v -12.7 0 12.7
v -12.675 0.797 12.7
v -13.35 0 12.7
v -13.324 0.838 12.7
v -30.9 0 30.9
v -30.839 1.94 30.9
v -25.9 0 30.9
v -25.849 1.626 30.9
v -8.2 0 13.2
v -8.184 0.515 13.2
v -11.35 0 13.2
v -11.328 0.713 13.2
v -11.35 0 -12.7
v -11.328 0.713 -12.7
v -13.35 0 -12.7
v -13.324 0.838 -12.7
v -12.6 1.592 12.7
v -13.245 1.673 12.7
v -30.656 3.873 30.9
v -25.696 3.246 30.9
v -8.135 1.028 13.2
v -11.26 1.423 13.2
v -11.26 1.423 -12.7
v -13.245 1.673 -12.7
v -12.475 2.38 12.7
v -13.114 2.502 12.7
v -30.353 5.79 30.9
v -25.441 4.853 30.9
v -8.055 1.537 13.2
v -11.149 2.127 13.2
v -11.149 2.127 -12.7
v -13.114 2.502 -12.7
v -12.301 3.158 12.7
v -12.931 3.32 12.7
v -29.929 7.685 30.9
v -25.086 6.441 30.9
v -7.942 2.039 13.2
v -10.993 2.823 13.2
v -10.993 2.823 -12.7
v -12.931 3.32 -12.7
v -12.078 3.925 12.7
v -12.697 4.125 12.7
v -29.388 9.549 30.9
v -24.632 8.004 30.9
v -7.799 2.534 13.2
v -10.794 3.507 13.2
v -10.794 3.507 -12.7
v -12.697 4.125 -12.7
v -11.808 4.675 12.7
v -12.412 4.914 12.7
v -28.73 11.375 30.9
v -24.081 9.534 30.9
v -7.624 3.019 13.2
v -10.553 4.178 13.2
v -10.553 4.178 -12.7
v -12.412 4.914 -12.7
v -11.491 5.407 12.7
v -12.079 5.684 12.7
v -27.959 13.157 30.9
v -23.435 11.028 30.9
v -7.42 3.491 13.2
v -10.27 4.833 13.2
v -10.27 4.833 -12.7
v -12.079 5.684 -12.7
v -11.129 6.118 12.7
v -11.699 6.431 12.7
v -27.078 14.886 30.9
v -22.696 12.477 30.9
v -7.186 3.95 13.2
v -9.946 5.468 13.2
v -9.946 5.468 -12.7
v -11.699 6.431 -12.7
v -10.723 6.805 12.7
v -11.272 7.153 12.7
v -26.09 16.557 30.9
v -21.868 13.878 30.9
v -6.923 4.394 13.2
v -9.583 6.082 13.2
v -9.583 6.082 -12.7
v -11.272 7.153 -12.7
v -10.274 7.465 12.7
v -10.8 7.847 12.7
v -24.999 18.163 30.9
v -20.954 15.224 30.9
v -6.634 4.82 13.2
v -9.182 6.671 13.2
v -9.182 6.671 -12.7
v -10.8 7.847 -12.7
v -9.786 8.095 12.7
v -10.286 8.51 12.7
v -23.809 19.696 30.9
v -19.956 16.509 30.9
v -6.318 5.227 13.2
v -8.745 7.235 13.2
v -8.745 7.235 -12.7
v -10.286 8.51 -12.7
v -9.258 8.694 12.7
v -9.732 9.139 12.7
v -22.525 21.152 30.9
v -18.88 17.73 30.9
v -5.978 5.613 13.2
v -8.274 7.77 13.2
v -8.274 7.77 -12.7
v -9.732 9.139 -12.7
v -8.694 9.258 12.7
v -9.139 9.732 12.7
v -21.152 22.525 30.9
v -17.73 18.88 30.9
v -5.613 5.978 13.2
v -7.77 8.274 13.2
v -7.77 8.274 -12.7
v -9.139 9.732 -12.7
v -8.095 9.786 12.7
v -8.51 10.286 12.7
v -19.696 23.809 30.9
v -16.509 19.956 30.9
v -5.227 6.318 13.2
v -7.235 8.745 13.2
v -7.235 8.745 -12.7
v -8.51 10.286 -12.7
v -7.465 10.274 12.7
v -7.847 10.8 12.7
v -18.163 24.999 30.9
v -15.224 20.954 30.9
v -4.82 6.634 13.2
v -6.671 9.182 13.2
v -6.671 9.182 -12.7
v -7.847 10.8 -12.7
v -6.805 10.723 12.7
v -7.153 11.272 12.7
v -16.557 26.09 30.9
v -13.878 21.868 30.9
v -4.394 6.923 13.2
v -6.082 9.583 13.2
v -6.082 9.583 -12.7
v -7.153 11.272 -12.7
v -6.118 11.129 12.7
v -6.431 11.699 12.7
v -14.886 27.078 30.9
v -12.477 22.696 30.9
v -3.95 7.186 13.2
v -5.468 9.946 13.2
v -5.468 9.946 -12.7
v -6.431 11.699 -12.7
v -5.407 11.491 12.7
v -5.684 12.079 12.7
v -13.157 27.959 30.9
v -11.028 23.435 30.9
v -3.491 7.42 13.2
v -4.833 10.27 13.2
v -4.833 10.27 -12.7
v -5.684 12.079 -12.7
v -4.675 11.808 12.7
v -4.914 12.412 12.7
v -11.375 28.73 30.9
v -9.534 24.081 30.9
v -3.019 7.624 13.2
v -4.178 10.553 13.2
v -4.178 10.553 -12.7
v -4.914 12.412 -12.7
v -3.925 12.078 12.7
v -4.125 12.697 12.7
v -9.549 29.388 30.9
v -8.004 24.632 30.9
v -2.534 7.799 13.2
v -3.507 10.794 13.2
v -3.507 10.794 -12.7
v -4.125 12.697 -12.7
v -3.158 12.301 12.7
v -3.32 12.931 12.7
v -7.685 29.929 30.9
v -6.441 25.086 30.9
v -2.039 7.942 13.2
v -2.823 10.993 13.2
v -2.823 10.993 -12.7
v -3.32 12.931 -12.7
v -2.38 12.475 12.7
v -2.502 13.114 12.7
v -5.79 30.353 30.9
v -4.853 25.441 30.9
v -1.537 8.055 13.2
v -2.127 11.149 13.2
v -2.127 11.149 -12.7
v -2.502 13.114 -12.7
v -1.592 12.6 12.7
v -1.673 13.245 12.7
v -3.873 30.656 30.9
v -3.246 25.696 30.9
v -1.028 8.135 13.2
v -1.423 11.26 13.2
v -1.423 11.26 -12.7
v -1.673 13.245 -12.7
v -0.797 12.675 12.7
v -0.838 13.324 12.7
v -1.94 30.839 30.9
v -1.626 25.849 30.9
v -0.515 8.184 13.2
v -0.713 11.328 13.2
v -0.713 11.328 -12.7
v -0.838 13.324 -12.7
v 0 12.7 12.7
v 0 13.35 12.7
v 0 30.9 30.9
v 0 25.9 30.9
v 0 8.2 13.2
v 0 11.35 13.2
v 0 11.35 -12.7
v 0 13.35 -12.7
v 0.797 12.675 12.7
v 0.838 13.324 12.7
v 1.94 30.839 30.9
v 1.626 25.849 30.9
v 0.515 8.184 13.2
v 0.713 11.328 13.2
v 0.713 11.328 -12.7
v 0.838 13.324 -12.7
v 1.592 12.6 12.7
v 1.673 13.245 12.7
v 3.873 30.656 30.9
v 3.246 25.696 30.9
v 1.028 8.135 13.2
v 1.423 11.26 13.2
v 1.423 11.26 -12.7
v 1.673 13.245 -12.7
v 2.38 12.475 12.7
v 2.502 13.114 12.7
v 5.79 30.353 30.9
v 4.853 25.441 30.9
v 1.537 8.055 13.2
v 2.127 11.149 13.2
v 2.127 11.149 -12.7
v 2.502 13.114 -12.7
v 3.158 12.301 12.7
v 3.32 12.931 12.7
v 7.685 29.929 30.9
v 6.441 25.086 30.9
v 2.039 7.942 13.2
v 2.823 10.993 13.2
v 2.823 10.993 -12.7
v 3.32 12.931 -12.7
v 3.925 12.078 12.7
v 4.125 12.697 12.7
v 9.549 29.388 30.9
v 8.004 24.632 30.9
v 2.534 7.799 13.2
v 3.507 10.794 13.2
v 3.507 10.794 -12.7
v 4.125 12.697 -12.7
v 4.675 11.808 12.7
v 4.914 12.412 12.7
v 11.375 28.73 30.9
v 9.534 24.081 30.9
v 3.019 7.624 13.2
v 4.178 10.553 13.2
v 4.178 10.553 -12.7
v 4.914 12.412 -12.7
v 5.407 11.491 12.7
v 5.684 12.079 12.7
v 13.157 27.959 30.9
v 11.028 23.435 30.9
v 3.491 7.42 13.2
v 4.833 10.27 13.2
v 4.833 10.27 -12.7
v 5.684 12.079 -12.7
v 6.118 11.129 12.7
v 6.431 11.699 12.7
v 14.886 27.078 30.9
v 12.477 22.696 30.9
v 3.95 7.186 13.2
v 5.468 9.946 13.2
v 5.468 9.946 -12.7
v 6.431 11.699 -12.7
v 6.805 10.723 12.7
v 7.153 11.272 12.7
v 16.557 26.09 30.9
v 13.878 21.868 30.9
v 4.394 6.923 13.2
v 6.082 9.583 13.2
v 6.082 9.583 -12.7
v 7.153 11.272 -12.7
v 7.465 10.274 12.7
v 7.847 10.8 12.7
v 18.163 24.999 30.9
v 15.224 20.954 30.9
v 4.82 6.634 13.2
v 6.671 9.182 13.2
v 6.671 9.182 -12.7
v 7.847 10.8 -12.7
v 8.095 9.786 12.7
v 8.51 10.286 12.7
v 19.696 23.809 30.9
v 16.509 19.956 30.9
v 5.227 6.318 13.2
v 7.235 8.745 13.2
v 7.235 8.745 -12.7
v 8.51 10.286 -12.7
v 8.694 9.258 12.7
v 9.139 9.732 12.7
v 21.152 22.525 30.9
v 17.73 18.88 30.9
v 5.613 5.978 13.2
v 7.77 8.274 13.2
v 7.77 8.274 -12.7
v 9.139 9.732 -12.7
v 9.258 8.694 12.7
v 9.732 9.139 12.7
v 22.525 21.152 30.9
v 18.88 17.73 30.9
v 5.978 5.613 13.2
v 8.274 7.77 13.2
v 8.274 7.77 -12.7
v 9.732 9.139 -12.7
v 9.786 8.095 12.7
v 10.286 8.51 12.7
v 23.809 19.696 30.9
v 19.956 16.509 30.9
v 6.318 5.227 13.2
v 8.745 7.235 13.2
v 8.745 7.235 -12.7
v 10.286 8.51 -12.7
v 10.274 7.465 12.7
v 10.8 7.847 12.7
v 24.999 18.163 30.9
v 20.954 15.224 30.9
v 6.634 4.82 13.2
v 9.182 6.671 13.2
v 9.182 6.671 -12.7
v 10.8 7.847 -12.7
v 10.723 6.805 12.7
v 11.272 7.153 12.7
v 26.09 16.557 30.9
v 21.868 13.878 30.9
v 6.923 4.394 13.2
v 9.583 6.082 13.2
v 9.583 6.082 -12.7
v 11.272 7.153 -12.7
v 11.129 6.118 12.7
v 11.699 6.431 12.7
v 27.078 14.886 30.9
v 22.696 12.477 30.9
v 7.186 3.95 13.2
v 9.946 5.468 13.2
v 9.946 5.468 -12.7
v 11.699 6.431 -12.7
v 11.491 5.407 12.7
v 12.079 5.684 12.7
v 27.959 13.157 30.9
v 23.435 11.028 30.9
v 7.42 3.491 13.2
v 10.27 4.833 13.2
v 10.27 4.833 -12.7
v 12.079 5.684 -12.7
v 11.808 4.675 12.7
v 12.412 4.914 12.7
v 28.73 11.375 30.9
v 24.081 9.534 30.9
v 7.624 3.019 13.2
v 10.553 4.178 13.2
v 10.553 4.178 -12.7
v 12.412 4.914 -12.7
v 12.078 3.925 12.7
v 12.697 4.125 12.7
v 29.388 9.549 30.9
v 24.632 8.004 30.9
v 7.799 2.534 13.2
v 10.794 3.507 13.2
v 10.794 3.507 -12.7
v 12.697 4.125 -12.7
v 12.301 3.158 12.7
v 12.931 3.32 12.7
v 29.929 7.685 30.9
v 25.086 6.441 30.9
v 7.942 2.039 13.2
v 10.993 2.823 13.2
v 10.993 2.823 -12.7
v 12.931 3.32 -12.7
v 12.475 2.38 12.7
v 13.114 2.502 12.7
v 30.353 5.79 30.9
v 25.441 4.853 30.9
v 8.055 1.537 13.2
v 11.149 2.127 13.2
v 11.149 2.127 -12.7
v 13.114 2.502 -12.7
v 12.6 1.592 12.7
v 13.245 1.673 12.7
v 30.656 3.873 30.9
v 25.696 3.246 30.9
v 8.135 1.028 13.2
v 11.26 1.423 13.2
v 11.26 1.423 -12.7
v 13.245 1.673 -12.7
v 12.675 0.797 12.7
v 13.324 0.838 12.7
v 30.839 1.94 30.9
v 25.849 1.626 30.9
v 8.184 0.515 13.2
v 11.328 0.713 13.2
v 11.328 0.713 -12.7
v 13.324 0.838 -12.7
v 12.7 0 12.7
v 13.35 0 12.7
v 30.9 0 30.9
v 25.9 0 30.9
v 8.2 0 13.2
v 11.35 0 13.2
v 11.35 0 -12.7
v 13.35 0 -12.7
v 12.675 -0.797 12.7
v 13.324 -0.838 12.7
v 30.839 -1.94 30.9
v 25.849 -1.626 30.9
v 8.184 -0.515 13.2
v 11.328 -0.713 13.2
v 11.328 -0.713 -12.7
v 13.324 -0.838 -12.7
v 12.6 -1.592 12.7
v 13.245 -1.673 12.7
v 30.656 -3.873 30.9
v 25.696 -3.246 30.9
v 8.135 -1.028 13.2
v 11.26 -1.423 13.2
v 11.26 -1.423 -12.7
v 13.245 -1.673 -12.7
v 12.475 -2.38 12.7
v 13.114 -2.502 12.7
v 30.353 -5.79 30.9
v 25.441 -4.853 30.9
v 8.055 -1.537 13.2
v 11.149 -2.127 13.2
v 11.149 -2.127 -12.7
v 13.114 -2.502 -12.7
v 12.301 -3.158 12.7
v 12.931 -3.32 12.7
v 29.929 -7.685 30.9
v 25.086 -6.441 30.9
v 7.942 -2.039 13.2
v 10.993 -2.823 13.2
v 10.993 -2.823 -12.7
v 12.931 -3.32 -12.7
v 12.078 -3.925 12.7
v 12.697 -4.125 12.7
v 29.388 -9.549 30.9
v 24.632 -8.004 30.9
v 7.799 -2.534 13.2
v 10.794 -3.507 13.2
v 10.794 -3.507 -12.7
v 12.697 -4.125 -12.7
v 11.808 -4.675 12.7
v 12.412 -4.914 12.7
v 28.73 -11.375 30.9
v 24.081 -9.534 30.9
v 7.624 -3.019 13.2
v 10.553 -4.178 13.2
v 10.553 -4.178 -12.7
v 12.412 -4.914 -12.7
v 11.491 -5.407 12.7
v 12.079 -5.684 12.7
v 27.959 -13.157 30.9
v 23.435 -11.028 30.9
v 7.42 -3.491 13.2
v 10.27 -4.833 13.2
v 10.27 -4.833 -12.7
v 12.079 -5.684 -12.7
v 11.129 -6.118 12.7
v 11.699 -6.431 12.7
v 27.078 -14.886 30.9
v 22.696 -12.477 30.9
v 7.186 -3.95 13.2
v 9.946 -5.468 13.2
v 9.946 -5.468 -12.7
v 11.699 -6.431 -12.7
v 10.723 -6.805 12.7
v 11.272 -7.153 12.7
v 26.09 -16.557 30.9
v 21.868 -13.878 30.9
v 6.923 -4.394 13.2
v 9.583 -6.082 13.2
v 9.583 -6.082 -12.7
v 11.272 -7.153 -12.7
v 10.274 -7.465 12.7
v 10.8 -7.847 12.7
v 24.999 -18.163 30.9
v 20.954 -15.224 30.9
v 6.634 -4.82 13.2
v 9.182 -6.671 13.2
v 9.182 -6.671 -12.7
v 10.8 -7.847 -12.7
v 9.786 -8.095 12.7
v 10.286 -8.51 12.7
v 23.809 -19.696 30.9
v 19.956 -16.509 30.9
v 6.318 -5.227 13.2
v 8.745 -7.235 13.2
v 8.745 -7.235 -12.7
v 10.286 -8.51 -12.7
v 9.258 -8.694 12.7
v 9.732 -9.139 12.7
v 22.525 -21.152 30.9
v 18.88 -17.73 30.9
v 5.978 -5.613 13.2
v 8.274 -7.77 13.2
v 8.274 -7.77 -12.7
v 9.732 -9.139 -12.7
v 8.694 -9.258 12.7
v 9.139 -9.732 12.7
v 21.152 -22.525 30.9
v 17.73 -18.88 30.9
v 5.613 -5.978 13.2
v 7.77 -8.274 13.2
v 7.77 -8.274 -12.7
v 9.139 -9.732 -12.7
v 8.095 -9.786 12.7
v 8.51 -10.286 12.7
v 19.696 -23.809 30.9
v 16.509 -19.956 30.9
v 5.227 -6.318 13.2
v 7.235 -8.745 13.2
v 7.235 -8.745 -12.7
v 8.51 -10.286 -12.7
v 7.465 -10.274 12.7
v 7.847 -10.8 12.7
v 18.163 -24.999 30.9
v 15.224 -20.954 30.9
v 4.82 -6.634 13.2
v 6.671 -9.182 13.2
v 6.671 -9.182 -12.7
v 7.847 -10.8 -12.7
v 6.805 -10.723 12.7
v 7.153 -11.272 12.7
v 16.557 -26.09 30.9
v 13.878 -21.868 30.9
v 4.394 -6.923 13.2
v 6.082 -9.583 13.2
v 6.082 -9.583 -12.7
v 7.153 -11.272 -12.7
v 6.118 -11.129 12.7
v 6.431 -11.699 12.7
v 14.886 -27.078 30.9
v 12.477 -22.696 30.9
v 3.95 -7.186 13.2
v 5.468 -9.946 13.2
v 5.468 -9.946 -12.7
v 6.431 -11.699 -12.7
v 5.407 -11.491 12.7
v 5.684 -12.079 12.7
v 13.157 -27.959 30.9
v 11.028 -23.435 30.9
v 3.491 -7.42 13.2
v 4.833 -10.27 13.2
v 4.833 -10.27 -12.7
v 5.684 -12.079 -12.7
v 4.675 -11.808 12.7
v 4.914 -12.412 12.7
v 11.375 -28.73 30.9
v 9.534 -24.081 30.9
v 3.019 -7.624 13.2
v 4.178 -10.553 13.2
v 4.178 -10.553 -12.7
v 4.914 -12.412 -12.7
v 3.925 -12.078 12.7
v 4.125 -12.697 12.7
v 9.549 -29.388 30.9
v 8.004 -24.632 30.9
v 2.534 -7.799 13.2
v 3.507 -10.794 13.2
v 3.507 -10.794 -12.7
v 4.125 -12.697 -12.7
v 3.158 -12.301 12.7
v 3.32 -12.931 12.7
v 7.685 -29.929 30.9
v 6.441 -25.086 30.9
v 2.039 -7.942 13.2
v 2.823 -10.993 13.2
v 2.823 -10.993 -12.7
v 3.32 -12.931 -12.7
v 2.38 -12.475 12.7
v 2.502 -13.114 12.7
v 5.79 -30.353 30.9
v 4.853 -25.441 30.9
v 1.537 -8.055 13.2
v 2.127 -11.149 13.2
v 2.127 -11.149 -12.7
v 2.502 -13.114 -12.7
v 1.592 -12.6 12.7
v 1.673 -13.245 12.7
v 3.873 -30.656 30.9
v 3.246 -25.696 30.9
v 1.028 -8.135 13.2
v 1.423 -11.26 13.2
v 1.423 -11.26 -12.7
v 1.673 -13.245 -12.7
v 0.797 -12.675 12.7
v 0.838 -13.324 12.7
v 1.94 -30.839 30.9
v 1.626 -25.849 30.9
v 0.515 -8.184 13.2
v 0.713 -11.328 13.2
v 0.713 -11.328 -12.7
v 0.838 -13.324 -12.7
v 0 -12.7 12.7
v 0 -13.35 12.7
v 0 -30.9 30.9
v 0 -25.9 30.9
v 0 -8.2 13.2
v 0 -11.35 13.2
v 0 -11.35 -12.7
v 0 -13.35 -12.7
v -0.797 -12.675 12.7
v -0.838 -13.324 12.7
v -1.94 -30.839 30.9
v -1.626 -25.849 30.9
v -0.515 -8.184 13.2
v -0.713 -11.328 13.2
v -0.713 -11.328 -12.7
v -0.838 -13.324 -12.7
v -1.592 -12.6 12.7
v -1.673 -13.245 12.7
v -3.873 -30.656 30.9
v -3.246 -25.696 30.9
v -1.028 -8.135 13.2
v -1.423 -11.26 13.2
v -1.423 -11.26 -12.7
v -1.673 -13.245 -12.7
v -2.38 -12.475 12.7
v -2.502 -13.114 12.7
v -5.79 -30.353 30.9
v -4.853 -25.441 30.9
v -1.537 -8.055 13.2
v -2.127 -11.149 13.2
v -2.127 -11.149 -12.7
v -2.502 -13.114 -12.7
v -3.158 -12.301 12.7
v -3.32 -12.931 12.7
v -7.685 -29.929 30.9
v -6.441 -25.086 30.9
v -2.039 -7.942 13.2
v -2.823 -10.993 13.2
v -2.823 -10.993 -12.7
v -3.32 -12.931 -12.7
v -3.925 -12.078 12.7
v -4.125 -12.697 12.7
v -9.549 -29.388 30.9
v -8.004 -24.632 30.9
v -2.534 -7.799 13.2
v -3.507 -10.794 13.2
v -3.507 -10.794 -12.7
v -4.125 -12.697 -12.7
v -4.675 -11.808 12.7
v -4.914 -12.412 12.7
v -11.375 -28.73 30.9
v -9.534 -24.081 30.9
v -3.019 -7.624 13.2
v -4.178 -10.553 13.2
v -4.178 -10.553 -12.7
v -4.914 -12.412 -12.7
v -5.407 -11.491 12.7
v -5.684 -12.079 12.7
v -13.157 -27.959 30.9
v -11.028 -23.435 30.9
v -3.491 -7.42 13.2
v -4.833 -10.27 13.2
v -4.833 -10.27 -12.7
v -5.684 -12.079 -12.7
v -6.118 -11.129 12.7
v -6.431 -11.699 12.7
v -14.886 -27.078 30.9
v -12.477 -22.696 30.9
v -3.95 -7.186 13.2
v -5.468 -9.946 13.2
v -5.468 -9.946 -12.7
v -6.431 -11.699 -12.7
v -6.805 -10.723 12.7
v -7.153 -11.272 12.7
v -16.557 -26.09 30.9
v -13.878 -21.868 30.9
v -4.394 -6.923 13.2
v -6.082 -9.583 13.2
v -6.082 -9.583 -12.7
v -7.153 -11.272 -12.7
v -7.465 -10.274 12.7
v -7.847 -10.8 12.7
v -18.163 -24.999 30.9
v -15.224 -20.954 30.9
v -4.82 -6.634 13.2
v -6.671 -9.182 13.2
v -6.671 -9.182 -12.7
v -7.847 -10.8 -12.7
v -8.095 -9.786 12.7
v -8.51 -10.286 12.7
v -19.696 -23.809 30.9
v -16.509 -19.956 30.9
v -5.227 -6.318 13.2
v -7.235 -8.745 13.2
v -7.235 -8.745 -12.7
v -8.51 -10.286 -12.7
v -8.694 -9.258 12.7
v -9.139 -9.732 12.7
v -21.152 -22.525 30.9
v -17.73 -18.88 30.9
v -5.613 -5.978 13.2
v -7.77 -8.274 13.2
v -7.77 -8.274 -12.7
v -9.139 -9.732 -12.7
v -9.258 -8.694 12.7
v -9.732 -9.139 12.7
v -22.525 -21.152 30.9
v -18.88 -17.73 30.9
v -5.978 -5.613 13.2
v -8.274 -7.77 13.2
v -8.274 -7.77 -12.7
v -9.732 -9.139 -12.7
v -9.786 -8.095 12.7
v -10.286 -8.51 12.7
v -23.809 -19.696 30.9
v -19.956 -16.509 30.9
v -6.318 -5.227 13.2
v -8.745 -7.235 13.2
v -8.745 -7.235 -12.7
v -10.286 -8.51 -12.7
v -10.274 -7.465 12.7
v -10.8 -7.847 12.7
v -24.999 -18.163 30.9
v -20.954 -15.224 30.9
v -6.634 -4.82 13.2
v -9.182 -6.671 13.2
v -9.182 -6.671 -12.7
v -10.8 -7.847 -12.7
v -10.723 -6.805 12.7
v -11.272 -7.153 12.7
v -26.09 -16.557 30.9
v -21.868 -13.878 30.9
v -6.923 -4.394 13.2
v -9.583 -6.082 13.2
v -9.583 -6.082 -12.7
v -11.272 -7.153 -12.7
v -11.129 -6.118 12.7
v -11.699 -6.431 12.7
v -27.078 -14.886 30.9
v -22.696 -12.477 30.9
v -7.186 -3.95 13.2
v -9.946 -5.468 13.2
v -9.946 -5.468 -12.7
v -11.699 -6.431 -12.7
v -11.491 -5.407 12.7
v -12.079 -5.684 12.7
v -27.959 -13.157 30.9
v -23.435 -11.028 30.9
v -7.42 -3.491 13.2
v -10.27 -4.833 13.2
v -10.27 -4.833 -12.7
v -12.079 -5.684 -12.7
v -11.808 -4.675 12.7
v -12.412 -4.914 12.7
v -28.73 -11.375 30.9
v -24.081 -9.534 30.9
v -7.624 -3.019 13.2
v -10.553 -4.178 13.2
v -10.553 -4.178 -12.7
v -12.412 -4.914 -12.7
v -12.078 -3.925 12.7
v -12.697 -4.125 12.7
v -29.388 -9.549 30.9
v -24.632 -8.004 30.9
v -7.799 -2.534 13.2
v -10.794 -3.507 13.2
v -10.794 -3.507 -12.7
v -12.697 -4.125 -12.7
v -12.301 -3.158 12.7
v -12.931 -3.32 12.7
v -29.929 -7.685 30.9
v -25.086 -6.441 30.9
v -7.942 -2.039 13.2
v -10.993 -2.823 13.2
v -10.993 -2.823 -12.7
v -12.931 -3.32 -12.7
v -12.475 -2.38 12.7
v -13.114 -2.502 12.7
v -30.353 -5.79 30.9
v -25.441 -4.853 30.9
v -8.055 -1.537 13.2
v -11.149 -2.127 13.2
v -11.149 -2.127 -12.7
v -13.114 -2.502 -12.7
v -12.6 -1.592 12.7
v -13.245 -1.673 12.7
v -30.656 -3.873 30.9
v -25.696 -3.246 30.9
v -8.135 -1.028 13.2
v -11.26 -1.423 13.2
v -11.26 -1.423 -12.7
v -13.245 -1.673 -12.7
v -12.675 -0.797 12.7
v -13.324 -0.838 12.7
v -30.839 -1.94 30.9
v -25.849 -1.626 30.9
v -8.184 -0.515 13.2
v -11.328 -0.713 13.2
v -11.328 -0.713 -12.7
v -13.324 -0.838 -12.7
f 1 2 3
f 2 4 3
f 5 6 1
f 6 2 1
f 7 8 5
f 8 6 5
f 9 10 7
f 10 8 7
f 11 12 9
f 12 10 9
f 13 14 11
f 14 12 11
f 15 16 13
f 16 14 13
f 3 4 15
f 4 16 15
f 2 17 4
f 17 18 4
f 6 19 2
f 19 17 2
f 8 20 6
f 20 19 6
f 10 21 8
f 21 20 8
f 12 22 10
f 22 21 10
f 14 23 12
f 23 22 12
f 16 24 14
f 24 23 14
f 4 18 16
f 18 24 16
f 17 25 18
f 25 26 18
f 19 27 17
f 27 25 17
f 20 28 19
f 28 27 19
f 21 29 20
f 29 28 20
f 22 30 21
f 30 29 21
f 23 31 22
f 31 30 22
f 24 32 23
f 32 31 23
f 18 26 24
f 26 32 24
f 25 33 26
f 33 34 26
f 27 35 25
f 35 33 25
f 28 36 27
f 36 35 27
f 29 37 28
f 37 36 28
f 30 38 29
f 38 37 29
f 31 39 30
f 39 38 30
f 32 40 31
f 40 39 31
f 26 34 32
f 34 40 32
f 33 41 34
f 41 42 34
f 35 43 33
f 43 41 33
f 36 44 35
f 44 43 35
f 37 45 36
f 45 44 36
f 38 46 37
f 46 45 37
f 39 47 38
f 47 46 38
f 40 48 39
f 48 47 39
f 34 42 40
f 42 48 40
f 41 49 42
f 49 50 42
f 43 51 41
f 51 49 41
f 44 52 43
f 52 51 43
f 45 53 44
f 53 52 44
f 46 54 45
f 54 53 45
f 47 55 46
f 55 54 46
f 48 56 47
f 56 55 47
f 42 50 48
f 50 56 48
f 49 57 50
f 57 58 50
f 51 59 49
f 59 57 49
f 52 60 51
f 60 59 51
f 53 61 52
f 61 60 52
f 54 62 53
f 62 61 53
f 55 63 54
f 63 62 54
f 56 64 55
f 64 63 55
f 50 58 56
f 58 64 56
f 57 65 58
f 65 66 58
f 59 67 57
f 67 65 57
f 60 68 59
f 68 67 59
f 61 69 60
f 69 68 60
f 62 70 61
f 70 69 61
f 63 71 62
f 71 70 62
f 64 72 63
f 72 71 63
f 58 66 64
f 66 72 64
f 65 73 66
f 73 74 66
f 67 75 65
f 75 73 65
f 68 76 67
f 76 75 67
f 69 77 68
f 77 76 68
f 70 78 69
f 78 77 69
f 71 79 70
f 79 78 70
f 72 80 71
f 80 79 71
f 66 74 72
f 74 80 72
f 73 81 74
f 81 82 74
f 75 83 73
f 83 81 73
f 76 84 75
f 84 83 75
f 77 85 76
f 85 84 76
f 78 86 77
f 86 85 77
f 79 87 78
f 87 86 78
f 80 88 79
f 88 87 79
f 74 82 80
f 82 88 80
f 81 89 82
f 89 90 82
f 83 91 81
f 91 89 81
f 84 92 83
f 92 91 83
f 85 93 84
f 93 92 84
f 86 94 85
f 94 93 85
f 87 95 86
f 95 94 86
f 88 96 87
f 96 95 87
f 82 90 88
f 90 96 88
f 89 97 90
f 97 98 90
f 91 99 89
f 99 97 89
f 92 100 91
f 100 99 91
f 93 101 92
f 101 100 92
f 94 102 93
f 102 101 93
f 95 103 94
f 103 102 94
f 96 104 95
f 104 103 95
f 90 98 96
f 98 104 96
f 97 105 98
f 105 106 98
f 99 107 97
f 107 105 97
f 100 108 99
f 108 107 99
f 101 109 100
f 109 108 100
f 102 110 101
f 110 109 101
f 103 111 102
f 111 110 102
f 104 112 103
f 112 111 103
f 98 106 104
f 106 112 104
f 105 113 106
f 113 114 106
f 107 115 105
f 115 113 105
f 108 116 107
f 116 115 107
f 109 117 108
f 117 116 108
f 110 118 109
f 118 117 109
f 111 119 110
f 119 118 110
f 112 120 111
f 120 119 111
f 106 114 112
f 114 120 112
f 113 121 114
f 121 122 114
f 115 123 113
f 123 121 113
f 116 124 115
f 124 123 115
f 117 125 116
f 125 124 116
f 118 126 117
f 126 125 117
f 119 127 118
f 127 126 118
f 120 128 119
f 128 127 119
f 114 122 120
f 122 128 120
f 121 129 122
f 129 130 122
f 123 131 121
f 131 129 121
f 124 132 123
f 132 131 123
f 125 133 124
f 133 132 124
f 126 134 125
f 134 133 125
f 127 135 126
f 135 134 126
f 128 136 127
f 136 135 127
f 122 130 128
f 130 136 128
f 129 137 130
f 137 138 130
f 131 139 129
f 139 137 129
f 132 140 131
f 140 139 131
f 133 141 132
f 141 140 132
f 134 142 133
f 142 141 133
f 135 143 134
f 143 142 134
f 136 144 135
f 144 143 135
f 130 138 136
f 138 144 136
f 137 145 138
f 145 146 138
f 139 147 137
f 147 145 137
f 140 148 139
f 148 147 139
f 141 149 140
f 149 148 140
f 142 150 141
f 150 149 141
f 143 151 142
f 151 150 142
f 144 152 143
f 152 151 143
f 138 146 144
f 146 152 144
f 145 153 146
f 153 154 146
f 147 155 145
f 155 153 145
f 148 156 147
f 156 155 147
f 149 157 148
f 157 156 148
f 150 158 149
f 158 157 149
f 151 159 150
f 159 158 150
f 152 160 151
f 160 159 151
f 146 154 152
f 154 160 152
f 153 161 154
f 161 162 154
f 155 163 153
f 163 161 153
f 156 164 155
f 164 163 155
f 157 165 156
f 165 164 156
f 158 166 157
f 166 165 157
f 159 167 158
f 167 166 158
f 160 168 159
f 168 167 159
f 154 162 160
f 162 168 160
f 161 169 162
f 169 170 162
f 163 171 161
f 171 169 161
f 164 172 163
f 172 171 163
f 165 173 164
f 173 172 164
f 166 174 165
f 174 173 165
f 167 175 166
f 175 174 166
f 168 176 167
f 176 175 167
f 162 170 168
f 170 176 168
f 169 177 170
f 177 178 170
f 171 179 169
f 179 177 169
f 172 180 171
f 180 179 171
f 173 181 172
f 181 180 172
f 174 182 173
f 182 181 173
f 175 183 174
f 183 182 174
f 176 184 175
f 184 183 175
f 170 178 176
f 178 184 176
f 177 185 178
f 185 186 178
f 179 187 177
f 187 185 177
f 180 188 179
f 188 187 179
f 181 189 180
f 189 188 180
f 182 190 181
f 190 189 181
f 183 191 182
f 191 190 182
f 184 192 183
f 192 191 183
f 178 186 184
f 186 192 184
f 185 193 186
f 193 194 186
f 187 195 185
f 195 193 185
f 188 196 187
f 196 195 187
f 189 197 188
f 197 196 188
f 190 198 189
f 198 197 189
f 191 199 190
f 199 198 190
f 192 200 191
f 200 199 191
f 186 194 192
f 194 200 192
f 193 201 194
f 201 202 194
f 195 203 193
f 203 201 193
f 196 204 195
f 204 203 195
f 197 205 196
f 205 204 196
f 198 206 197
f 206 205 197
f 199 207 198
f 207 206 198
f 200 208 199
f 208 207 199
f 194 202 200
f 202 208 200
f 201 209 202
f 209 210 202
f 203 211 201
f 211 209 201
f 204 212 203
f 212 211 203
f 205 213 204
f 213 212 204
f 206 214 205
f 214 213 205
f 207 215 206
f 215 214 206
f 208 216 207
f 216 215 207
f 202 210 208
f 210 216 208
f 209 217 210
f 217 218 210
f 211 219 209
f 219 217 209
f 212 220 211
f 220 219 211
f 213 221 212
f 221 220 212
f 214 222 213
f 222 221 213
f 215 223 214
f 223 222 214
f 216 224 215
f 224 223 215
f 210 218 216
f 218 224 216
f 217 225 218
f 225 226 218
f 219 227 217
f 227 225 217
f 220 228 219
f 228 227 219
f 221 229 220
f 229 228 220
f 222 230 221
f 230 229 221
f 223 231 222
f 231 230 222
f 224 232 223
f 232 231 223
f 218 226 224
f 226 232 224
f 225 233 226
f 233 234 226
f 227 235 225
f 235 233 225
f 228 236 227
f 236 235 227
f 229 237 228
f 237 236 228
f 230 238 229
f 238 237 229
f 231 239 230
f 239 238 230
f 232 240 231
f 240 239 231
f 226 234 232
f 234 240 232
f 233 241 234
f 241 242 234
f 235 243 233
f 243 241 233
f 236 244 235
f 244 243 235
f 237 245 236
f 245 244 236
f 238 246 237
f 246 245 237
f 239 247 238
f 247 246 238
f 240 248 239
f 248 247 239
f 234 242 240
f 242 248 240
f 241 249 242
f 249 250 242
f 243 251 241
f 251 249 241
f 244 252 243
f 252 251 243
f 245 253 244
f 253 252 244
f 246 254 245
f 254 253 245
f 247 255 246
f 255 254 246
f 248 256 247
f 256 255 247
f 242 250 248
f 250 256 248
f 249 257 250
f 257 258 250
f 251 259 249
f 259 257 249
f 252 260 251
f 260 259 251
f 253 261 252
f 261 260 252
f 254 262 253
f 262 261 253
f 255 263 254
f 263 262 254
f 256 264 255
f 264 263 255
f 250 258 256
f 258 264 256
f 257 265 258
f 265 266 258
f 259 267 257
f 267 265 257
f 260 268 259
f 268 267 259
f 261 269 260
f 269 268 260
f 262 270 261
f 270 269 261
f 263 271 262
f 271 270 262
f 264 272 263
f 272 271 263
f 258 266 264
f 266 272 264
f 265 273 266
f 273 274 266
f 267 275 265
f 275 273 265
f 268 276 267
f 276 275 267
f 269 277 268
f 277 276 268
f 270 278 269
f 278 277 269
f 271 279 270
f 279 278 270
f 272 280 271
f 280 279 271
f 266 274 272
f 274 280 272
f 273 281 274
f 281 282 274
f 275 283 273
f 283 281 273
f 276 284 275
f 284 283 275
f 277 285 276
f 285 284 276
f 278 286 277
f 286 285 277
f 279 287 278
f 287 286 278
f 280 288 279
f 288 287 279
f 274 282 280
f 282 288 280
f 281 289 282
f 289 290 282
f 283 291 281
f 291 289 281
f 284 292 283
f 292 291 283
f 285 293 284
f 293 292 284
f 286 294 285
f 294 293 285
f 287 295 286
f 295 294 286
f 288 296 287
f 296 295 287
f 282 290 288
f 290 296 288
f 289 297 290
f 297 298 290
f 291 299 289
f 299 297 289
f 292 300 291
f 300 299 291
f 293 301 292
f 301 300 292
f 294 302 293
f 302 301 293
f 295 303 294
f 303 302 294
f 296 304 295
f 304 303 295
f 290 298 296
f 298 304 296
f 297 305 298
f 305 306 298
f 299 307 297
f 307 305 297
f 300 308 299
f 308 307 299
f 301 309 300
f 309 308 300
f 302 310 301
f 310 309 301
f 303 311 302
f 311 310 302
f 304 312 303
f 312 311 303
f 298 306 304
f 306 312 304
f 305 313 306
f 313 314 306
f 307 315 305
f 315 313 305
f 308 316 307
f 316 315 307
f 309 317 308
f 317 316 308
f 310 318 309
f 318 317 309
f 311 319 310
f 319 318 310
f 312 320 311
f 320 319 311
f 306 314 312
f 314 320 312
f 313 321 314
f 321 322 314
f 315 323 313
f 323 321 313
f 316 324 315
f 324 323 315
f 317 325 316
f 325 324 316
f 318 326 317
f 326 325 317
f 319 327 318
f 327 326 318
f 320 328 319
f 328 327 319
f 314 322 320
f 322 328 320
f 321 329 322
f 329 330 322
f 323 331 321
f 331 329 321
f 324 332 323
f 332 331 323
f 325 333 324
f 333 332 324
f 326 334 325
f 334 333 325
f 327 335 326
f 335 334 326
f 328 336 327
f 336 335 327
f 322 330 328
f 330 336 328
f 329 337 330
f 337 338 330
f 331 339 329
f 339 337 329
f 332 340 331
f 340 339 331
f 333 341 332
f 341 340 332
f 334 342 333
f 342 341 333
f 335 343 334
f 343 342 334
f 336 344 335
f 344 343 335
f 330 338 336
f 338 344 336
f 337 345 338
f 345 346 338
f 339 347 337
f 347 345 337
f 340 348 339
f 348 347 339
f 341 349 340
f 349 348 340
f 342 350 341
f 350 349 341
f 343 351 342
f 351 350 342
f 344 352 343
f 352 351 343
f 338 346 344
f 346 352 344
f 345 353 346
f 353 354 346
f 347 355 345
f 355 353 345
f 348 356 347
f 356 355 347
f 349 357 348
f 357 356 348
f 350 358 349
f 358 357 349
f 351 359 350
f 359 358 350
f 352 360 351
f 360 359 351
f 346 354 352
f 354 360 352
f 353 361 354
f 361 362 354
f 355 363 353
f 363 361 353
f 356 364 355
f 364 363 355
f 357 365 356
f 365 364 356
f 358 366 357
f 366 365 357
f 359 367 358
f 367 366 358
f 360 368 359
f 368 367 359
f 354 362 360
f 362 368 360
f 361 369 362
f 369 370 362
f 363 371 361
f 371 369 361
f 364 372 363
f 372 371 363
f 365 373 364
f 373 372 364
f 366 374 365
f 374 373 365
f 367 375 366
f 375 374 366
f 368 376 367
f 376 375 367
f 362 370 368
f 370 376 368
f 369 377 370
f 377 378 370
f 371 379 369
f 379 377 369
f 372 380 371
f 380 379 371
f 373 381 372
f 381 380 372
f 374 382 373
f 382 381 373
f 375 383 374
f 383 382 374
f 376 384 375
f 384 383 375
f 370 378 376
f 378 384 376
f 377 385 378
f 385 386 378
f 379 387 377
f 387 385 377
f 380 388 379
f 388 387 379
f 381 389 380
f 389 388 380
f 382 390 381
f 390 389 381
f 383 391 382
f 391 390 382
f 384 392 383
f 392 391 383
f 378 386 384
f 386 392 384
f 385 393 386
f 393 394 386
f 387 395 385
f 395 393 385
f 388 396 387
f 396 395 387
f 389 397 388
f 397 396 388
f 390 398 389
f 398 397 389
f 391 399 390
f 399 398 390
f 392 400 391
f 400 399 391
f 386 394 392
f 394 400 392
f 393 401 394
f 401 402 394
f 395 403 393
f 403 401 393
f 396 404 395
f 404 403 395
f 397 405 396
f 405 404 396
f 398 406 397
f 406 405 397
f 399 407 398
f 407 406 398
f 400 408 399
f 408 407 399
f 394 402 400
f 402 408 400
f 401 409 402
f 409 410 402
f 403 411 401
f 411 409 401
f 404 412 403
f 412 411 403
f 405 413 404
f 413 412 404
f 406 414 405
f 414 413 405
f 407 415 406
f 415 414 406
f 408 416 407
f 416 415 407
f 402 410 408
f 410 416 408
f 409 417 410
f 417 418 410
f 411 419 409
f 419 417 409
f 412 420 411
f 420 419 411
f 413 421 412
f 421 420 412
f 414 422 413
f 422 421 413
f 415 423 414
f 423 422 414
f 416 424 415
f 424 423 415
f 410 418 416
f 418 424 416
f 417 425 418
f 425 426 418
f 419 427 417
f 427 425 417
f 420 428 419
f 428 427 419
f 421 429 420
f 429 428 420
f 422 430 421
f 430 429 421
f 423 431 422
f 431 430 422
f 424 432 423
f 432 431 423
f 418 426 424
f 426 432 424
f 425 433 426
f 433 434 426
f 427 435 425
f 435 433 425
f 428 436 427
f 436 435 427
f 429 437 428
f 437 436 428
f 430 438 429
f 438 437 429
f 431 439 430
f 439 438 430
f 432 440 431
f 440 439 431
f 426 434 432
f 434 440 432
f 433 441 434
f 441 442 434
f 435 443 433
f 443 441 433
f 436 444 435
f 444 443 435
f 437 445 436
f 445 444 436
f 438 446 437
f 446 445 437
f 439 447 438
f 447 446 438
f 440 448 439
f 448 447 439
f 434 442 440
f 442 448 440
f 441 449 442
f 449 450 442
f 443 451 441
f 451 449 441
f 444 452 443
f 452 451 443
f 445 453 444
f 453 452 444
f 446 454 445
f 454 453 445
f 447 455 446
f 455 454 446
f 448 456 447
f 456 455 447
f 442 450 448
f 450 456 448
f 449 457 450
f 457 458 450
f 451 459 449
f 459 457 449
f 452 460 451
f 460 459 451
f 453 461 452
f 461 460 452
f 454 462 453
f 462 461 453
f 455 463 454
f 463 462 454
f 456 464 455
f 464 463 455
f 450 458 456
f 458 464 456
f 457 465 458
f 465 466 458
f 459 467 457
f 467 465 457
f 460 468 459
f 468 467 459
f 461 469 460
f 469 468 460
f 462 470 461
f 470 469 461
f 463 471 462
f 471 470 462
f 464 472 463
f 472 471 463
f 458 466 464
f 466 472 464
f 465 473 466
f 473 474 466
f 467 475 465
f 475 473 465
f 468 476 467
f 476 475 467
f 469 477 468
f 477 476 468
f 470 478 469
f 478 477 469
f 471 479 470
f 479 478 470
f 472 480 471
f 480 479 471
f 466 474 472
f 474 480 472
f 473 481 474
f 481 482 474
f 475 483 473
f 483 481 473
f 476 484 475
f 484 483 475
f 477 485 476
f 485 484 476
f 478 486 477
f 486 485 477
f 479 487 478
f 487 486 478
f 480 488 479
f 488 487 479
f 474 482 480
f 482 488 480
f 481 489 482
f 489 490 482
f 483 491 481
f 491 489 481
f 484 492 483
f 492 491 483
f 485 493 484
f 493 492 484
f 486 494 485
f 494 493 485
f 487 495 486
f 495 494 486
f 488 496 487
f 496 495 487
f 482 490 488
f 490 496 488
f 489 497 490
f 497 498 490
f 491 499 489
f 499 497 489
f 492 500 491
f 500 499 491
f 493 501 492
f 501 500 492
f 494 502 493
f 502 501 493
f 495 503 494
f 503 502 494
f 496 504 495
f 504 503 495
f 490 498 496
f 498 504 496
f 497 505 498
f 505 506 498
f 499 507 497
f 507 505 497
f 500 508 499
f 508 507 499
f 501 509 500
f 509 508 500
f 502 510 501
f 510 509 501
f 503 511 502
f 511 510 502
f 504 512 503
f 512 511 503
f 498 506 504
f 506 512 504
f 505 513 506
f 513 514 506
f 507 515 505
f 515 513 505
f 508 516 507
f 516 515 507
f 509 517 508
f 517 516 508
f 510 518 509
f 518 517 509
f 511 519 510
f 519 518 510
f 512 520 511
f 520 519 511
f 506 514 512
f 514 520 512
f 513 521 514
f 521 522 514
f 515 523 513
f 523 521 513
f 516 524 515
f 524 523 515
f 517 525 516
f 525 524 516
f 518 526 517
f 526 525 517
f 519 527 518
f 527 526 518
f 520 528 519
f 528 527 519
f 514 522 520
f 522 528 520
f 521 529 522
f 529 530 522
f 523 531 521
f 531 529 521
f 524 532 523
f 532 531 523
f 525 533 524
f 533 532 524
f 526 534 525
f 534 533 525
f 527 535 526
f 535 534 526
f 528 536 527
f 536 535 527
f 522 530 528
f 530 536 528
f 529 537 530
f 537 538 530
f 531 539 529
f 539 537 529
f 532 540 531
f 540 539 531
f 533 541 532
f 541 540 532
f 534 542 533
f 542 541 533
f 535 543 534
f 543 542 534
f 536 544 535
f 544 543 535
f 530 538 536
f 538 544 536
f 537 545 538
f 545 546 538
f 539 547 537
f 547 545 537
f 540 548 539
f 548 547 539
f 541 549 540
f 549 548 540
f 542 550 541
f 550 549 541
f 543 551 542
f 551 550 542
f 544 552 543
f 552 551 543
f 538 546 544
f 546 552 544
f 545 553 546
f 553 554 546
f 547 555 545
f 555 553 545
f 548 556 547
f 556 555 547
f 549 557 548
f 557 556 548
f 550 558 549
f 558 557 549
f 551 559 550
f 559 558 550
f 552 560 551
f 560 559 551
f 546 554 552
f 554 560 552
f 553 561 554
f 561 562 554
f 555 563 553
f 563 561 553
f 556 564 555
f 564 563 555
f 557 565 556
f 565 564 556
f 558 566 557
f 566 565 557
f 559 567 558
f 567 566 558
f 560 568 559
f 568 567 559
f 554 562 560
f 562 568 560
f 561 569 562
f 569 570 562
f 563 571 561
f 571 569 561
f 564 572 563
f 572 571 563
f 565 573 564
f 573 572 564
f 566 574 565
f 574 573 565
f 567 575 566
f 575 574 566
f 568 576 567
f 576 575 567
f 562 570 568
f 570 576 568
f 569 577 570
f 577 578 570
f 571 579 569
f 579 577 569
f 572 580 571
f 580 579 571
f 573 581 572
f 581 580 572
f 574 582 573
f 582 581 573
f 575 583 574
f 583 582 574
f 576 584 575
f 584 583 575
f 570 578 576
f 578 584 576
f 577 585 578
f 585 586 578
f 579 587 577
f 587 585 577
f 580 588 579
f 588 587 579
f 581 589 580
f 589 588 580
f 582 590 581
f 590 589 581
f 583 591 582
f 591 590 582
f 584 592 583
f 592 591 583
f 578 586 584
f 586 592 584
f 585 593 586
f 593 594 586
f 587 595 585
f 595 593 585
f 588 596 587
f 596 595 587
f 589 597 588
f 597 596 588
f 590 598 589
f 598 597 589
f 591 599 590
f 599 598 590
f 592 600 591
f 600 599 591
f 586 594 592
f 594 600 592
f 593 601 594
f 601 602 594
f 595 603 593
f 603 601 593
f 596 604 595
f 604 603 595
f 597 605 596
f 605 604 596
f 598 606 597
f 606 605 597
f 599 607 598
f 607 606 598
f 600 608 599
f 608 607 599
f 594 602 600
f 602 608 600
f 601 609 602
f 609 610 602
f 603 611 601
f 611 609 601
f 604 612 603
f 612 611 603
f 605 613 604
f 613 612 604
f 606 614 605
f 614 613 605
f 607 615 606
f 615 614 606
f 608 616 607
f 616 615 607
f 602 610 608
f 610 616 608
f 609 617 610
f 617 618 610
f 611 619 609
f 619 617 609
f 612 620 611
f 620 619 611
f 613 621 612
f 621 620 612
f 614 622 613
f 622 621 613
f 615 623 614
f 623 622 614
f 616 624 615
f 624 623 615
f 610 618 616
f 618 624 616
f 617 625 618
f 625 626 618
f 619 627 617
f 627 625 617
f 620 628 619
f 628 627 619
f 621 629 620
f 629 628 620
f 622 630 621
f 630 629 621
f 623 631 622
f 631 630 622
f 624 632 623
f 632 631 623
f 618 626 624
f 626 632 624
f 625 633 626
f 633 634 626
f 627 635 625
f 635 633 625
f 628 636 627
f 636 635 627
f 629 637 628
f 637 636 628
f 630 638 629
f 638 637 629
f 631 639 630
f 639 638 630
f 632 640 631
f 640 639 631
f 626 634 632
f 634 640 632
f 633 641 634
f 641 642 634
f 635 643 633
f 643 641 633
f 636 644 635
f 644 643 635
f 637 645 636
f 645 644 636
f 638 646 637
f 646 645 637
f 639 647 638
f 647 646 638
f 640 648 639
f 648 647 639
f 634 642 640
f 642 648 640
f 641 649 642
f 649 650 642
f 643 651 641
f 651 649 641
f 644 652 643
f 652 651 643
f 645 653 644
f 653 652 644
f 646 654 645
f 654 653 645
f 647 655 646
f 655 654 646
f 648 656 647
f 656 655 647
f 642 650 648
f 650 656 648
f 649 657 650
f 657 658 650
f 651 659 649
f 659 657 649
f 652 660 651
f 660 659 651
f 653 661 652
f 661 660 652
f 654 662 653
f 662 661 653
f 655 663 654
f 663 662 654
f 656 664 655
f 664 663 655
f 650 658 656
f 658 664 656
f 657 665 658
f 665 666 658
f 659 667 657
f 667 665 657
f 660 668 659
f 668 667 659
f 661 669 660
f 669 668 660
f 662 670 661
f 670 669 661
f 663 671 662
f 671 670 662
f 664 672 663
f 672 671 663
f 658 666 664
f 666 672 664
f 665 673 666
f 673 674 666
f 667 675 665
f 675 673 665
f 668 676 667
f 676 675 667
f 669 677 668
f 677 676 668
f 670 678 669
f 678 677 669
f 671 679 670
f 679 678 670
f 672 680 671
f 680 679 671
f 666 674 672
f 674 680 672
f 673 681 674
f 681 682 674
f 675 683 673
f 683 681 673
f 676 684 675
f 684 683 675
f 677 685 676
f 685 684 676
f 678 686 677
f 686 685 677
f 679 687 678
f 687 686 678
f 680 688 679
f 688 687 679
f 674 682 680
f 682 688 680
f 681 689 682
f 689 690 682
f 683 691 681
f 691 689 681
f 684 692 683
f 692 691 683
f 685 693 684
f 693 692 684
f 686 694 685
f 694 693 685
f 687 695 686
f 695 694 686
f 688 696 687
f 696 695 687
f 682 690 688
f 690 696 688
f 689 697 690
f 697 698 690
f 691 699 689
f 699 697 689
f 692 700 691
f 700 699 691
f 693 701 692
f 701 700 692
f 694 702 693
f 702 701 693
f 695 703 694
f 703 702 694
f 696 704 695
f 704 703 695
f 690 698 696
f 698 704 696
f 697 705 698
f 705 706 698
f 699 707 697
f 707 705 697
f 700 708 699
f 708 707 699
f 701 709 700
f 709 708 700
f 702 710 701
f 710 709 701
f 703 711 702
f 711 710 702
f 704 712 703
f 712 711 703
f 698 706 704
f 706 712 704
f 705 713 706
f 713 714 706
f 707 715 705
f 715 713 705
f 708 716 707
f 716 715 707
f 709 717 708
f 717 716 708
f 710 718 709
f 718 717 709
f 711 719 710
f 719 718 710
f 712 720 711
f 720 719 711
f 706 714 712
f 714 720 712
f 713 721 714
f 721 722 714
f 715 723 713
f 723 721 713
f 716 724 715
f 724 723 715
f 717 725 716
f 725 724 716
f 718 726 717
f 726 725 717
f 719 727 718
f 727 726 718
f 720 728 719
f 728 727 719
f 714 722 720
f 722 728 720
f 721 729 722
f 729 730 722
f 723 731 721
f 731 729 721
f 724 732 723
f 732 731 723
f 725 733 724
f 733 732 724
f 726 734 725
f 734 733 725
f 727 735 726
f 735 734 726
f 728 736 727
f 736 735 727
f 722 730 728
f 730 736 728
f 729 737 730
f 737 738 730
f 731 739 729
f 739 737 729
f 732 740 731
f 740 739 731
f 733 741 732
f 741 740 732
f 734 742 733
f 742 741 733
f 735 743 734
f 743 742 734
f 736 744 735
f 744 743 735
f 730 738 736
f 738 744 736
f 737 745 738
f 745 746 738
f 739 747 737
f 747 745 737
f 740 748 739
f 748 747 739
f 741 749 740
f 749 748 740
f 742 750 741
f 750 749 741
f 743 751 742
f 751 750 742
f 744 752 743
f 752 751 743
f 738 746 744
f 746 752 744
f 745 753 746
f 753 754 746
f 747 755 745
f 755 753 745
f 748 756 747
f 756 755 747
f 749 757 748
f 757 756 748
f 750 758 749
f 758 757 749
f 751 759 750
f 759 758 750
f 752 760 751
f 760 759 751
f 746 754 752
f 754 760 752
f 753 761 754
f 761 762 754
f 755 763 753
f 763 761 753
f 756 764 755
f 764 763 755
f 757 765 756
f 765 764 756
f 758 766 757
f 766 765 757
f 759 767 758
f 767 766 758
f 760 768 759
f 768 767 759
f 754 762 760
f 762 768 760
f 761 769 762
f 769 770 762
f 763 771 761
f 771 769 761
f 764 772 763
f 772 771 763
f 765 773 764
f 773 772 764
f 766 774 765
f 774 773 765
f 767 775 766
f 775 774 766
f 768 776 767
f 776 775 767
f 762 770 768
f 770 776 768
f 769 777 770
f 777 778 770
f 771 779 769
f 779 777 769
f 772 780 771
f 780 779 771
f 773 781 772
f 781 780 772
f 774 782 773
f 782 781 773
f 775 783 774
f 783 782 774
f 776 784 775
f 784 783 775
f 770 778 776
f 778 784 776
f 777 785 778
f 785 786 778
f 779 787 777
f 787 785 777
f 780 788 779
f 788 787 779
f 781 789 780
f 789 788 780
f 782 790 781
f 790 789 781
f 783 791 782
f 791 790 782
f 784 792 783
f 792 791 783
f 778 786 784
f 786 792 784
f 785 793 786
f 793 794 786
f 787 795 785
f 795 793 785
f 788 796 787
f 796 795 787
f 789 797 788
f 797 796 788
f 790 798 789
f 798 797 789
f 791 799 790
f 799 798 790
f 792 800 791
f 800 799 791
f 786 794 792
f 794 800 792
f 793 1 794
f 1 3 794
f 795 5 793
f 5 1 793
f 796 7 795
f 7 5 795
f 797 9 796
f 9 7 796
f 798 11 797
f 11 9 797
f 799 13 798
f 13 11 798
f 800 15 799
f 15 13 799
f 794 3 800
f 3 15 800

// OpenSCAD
// makes a funnel that can fit into a graduated cylinder
// to turn it into a rain gauge

// this rain gauge acts by magnifying the volume that _would_ be caught at 1" if the entire
// container were the width of the interior diameter of the funnel.
// This allows small amounts of rain to be measured more accurately

// for inner diameter of funnel and inner diameter of cylinder
// 1" of rain would be marked as h inches on the cylinder
// where h = (funnel inner diameter^2)/(cylinder inner diameter^2)
// in other words, 1" of rain would be marked as 4 inches on the cylinder if
// the proportion is 2:1.

// the interior diameter of the cylinder. the base of the funnel will fit into here
cylinder_inner_diameter = 26.9;

// the diameter of the interior circle of the large part of the funnel
funnel_inner_diameter = 53.8;

// how high the base of the funnel should be (how far it will insert into the cylinder
funnel_insert_depth = 25.4;

// how much wiggle room to leave on the outside of the insert
funnel_insert_tolerance = .2;

wall_width = 4;

angleSin = .707;
angleCos = .707;

funnel_inner_hypotenuse = (funnel_inner_diameter * .5)/angleCos; // cosine 45
funnel_inner_height = funnel_inner_hypotenuse * angleSin; // sine 45

echo(funnel_inner_hypotenuse);

// draw outer triangle
funnel_outer_diameter = funnel_inner_diameter + (2 * wall_width);
funnel_outer_hypotenuse = (funnel_outer_diameter * .5)/angleCos;

funnel_outer_height = funnel_outer_hypotenuse * angleSin;
rotate_extrude(convexity=10, $fn=100)
//rotate([90,0,0])
difference() {
union() {
  polygon( points = [
     [0,0],
     [funnel_outer_diameter * .5, funnel_outer_height],
     [-funnel_outer_diameter * .5, funnel_outer_height],
     [0,0]
   ] );
   
   square([cylinder_inner_diameter - funnel_insert_tolerance, funnel_insert_depth], center = true);
}
 
translate([0, wall_width + 1, 0])
polygon( points = [
  [0,0],
  [funnel_inner_diameter * .5, funnel_inner_height],
  [-funnel_inner_diameter * .5, funnel_inner_height],
  [0,0]
 ]);

 square([cylinder_inner_diameter - funnel_insert_tolerance - wall_width, funnel_insert_depth + 1], center = true);

  // remove half the shape so that rotate_extrude will work
  translate([-(funnel_outer_diameter * .5) - 5,
             -(funnel_insert_depth * .5) -1,
           0])
  square([funnel_outer_diameter * .5, funnel_insert_depth + funnel_outer_height], center=false);
}
